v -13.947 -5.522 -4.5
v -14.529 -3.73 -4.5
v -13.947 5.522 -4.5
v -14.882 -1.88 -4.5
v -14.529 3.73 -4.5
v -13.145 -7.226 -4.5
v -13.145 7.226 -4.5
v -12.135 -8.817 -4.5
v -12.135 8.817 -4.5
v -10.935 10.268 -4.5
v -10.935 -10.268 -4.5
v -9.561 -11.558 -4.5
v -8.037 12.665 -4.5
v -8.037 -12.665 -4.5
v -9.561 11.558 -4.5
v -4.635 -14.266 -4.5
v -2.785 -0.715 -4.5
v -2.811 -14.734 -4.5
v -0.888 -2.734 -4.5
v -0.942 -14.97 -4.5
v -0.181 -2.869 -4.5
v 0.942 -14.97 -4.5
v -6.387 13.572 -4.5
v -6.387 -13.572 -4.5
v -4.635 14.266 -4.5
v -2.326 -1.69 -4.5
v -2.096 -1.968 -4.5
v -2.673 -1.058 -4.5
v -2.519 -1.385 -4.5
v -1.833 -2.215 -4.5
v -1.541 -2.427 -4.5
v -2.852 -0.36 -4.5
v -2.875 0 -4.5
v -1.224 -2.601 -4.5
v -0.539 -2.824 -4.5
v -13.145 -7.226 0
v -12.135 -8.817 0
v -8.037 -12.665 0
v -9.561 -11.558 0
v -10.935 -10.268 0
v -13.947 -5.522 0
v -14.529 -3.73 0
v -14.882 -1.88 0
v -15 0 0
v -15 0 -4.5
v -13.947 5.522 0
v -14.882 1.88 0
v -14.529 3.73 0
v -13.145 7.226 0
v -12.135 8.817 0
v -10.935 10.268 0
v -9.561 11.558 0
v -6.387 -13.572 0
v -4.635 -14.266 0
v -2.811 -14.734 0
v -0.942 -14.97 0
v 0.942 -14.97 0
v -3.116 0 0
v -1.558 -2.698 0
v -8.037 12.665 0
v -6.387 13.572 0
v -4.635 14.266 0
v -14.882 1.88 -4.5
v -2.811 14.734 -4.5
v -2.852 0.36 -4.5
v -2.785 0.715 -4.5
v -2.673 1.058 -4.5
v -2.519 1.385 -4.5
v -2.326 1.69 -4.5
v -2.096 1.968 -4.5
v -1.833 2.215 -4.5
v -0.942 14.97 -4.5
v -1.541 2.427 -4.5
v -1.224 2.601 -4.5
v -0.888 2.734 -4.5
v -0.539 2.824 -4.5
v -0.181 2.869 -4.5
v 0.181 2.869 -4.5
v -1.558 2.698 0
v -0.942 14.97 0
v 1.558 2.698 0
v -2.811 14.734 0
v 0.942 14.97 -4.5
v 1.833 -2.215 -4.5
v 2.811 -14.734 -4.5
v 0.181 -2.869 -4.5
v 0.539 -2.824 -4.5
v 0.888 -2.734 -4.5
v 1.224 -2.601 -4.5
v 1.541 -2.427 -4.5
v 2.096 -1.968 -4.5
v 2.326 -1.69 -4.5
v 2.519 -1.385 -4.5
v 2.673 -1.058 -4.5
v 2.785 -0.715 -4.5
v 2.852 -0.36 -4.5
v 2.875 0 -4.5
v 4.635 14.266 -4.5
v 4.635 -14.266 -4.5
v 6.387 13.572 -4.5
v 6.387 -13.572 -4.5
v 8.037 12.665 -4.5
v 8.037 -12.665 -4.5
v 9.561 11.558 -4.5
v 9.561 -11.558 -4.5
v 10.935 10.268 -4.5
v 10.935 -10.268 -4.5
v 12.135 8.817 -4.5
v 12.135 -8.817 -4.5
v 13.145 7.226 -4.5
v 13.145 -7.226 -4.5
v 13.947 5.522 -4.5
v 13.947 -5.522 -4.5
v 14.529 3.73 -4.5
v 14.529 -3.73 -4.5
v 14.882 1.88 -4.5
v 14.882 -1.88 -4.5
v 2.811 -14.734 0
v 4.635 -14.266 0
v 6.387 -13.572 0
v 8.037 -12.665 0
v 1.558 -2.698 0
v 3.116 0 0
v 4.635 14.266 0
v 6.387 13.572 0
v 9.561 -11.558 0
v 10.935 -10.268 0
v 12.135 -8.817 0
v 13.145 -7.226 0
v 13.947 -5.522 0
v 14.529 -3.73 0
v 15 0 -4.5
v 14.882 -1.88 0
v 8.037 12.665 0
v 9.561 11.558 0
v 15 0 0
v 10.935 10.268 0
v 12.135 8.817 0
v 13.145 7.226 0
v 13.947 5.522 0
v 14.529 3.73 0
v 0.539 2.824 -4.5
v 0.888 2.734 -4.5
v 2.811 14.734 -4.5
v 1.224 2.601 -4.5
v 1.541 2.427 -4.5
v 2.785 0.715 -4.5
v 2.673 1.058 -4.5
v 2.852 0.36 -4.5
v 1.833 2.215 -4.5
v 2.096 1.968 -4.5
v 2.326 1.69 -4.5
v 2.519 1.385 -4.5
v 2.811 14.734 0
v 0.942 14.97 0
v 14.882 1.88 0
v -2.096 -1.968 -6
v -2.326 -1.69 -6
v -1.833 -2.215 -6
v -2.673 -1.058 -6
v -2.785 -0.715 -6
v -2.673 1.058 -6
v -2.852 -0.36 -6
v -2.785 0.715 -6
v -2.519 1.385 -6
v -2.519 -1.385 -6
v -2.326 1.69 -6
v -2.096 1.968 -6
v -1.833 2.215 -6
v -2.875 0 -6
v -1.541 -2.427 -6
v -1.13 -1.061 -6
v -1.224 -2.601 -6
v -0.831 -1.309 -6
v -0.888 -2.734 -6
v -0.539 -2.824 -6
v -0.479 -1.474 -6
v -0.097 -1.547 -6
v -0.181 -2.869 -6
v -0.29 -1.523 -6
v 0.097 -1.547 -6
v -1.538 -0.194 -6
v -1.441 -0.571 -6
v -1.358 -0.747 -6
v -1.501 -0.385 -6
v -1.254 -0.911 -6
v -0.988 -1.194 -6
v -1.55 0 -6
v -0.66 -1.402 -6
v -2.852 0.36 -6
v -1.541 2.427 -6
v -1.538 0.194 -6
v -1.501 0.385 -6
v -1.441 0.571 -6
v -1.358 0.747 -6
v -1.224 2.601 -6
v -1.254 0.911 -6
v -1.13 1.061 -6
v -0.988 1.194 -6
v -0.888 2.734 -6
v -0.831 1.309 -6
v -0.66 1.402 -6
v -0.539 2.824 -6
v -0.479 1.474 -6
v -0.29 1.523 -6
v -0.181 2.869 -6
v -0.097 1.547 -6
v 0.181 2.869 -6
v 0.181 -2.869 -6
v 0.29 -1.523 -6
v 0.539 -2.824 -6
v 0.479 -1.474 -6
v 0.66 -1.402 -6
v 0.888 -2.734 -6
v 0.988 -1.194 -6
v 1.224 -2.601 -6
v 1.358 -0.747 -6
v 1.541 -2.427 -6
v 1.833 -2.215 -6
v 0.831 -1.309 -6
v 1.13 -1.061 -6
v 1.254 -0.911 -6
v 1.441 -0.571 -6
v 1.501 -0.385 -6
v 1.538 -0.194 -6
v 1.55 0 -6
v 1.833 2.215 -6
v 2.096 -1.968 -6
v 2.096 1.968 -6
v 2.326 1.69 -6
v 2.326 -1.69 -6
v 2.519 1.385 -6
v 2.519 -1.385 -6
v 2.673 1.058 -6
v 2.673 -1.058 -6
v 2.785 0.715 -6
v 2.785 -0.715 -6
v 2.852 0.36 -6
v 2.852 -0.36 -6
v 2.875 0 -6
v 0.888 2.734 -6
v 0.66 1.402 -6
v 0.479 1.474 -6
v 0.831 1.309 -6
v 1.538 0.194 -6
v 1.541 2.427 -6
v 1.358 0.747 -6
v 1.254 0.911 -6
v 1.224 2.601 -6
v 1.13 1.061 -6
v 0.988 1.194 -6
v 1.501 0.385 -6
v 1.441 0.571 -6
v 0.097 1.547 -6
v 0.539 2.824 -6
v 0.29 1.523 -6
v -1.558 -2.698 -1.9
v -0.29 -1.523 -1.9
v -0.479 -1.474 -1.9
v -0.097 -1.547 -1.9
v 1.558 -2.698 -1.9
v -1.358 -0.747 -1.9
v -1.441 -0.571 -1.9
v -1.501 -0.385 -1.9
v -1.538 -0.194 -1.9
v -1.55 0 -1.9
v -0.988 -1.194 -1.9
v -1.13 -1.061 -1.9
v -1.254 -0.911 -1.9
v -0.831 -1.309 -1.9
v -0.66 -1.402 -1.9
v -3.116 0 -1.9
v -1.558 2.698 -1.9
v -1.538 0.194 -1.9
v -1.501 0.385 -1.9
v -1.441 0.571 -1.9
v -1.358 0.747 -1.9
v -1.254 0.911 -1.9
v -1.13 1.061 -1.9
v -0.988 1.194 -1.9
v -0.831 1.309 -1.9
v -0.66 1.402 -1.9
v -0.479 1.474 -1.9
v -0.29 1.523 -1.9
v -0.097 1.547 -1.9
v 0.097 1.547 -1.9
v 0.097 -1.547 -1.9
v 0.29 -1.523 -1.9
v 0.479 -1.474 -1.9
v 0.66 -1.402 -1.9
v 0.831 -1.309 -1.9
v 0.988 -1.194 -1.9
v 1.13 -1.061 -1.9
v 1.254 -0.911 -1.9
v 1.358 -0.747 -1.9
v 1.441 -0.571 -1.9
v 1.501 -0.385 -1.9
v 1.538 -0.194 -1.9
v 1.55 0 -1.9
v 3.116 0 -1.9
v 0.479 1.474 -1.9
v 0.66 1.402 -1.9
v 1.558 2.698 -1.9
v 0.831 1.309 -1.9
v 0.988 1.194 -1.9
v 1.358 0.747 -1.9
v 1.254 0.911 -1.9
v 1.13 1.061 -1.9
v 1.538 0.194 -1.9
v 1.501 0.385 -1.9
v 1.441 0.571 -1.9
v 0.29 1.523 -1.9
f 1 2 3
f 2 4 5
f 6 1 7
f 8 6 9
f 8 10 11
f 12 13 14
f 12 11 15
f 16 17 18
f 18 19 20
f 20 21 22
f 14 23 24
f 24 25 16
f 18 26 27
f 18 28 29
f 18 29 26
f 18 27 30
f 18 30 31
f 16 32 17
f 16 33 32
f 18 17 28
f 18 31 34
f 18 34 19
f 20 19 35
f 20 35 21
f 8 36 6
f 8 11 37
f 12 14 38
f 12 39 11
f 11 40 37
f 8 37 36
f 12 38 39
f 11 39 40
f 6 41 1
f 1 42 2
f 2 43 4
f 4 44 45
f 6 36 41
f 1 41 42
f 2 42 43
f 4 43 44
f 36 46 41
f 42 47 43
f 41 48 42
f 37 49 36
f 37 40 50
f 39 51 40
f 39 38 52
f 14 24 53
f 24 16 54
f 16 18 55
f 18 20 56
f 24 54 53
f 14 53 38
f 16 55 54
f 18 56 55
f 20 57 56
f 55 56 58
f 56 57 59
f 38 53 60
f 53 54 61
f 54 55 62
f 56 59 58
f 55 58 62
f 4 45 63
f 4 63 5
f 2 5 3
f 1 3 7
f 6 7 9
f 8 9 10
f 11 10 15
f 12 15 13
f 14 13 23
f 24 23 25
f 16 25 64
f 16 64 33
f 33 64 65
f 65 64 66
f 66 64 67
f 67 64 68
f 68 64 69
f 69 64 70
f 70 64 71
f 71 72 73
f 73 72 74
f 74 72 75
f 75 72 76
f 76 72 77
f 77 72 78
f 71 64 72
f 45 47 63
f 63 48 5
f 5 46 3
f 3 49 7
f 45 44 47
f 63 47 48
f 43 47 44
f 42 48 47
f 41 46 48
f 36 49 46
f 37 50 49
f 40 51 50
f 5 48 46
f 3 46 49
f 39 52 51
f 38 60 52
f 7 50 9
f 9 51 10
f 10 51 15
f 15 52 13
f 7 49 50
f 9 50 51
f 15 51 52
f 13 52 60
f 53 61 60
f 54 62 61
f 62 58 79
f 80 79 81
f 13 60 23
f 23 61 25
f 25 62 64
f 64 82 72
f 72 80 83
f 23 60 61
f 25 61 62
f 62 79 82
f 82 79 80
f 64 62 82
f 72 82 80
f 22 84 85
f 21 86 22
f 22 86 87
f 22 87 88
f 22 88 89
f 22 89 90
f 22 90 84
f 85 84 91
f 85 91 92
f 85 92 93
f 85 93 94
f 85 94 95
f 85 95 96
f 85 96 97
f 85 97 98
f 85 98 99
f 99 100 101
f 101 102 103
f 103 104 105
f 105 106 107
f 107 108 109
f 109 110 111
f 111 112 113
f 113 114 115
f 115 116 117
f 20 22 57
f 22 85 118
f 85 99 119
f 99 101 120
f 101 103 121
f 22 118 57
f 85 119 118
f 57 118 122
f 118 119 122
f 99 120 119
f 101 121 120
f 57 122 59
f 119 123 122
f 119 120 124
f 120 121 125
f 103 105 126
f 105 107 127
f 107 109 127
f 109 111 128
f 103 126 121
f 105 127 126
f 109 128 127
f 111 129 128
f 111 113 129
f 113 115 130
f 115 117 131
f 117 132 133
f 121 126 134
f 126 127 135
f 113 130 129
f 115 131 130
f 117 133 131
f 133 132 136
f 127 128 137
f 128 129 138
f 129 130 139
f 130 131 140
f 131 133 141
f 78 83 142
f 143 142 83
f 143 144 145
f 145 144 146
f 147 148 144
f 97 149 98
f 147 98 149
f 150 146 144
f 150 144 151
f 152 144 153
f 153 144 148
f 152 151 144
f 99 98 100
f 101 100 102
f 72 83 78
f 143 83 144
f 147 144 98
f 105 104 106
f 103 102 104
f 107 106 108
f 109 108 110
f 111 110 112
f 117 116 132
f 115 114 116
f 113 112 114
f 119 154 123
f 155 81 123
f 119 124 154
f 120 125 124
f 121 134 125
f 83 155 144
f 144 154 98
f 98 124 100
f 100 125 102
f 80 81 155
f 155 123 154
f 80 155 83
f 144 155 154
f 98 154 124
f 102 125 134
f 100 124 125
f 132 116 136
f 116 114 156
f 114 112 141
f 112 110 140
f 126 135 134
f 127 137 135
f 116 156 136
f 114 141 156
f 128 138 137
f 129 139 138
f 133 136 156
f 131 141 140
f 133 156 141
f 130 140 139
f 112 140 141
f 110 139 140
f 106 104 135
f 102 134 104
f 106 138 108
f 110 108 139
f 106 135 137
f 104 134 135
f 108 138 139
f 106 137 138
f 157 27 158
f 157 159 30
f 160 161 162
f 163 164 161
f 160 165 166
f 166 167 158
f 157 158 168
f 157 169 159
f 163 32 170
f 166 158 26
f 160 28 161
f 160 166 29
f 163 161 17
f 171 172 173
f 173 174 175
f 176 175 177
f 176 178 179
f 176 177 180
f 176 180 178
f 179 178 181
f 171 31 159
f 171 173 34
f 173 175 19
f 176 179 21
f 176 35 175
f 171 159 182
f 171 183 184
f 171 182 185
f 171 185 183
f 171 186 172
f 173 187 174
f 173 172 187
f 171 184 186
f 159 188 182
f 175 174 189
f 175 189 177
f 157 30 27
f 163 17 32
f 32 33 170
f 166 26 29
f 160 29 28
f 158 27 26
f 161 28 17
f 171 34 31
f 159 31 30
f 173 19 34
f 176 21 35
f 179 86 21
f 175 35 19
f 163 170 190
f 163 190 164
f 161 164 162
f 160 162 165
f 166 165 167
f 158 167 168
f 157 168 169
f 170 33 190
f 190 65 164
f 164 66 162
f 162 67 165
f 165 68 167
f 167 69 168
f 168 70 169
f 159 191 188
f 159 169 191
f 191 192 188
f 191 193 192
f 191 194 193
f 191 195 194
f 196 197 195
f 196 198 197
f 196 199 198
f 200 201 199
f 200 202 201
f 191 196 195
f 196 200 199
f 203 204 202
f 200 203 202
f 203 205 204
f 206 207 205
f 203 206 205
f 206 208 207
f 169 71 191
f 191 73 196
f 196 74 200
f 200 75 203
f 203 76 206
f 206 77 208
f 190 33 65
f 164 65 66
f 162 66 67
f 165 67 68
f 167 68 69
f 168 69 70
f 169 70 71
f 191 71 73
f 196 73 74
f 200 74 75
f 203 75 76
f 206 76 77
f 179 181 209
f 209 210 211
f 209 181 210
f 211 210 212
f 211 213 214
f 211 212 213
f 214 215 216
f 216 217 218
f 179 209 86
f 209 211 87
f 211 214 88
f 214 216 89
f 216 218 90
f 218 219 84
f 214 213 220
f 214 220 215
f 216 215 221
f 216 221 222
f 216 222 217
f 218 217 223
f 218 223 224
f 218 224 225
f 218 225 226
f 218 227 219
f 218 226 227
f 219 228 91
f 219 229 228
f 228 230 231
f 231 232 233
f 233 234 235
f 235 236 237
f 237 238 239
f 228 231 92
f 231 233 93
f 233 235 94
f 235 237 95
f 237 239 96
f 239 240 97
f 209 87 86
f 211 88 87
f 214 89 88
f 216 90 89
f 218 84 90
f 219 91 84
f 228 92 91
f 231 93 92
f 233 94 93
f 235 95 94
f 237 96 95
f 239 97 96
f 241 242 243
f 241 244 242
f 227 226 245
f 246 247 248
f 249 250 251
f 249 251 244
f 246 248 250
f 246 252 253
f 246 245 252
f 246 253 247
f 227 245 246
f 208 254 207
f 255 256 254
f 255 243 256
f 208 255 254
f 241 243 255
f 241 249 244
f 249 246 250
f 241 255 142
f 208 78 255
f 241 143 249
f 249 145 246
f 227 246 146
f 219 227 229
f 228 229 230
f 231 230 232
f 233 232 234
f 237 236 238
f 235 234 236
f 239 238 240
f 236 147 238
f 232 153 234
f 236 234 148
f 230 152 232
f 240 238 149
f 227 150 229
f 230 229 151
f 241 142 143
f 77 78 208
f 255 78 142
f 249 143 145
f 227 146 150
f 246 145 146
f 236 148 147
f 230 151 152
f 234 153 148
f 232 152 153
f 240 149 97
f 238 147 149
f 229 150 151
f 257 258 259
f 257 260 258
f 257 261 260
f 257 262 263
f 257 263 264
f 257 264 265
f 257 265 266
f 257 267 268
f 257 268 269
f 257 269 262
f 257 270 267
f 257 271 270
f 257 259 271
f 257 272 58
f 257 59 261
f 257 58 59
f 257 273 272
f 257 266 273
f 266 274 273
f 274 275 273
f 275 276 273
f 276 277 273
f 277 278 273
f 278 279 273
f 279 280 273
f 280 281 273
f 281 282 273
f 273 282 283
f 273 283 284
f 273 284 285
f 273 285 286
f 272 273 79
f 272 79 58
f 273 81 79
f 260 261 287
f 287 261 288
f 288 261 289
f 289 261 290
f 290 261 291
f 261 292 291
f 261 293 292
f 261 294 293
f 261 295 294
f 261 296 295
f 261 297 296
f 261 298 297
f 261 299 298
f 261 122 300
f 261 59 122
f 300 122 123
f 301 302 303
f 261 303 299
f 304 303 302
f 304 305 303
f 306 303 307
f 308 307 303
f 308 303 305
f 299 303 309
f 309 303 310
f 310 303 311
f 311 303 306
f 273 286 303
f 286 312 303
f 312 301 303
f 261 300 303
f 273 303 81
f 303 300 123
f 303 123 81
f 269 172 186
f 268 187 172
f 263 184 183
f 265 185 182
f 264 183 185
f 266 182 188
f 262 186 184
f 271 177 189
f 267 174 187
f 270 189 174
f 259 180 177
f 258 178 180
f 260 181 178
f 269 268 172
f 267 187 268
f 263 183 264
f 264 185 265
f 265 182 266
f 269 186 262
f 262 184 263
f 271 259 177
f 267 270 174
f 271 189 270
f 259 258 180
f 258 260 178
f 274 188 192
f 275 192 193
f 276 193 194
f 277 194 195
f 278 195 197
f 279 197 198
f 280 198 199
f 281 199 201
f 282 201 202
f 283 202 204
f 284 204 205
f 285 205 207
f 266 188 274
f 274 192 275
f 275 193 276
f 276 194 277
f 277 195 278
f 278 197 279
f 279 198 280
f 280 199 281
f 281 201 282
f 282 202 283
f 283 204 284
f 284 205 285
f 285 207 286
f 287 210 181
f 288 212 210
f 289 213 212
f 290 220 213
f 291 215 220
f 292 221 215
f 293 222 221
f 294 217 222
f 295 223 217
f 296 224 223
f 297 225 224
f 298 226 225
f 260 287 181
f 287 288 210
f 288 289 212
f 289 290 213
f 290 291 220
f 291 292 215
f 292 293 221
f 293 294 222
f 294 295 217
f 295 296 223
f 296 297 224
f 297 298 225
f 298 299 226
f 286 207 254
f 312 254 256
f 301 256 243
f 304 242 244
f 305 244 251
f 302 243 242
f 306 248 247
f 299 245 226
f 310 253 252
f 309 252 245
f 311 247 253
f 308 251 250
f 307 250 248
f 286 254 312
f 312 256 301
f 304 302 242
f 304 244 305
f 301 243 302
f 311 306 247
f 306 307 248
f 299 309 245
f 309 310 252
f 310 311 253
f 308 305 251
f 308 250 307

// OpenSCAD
$fn = 50;

difference() {
	union() {
		translate(v = [0, 0, -4.5]) {
			cylinder(h = 4.5, r = 15.0);
		}
		#translate(v = [0, 0, -6.0]) {
			cylinder(h = 6, r = 2.875);
		}
	}
	union() {
		translate(v = [0, 0, 0]) {
			rotate(a = [0, 0, 0]) {
				difference() {
					union() {
						translate(v = [0, 0, -1.9]) {
							linear_extrude(height = 1.9) {
								polygon(points = [[3.1158, 0.0], [1.5579000000000005, 2.698361953111554], [-1.5578999999999994, 2.6983619531115544], [-3.1158, 3.815754496783323e-16], [-1.5579000000000014, -2.6983619531115535], [1.557899999999998, -2.6983619531115552]]);
							}
						}
					}
					union();
				}
			}
		}
		#translate(v = [0, 0, -100.0]) {
			cylinder(h = 200, r = 1.55);
		}
	}
}
